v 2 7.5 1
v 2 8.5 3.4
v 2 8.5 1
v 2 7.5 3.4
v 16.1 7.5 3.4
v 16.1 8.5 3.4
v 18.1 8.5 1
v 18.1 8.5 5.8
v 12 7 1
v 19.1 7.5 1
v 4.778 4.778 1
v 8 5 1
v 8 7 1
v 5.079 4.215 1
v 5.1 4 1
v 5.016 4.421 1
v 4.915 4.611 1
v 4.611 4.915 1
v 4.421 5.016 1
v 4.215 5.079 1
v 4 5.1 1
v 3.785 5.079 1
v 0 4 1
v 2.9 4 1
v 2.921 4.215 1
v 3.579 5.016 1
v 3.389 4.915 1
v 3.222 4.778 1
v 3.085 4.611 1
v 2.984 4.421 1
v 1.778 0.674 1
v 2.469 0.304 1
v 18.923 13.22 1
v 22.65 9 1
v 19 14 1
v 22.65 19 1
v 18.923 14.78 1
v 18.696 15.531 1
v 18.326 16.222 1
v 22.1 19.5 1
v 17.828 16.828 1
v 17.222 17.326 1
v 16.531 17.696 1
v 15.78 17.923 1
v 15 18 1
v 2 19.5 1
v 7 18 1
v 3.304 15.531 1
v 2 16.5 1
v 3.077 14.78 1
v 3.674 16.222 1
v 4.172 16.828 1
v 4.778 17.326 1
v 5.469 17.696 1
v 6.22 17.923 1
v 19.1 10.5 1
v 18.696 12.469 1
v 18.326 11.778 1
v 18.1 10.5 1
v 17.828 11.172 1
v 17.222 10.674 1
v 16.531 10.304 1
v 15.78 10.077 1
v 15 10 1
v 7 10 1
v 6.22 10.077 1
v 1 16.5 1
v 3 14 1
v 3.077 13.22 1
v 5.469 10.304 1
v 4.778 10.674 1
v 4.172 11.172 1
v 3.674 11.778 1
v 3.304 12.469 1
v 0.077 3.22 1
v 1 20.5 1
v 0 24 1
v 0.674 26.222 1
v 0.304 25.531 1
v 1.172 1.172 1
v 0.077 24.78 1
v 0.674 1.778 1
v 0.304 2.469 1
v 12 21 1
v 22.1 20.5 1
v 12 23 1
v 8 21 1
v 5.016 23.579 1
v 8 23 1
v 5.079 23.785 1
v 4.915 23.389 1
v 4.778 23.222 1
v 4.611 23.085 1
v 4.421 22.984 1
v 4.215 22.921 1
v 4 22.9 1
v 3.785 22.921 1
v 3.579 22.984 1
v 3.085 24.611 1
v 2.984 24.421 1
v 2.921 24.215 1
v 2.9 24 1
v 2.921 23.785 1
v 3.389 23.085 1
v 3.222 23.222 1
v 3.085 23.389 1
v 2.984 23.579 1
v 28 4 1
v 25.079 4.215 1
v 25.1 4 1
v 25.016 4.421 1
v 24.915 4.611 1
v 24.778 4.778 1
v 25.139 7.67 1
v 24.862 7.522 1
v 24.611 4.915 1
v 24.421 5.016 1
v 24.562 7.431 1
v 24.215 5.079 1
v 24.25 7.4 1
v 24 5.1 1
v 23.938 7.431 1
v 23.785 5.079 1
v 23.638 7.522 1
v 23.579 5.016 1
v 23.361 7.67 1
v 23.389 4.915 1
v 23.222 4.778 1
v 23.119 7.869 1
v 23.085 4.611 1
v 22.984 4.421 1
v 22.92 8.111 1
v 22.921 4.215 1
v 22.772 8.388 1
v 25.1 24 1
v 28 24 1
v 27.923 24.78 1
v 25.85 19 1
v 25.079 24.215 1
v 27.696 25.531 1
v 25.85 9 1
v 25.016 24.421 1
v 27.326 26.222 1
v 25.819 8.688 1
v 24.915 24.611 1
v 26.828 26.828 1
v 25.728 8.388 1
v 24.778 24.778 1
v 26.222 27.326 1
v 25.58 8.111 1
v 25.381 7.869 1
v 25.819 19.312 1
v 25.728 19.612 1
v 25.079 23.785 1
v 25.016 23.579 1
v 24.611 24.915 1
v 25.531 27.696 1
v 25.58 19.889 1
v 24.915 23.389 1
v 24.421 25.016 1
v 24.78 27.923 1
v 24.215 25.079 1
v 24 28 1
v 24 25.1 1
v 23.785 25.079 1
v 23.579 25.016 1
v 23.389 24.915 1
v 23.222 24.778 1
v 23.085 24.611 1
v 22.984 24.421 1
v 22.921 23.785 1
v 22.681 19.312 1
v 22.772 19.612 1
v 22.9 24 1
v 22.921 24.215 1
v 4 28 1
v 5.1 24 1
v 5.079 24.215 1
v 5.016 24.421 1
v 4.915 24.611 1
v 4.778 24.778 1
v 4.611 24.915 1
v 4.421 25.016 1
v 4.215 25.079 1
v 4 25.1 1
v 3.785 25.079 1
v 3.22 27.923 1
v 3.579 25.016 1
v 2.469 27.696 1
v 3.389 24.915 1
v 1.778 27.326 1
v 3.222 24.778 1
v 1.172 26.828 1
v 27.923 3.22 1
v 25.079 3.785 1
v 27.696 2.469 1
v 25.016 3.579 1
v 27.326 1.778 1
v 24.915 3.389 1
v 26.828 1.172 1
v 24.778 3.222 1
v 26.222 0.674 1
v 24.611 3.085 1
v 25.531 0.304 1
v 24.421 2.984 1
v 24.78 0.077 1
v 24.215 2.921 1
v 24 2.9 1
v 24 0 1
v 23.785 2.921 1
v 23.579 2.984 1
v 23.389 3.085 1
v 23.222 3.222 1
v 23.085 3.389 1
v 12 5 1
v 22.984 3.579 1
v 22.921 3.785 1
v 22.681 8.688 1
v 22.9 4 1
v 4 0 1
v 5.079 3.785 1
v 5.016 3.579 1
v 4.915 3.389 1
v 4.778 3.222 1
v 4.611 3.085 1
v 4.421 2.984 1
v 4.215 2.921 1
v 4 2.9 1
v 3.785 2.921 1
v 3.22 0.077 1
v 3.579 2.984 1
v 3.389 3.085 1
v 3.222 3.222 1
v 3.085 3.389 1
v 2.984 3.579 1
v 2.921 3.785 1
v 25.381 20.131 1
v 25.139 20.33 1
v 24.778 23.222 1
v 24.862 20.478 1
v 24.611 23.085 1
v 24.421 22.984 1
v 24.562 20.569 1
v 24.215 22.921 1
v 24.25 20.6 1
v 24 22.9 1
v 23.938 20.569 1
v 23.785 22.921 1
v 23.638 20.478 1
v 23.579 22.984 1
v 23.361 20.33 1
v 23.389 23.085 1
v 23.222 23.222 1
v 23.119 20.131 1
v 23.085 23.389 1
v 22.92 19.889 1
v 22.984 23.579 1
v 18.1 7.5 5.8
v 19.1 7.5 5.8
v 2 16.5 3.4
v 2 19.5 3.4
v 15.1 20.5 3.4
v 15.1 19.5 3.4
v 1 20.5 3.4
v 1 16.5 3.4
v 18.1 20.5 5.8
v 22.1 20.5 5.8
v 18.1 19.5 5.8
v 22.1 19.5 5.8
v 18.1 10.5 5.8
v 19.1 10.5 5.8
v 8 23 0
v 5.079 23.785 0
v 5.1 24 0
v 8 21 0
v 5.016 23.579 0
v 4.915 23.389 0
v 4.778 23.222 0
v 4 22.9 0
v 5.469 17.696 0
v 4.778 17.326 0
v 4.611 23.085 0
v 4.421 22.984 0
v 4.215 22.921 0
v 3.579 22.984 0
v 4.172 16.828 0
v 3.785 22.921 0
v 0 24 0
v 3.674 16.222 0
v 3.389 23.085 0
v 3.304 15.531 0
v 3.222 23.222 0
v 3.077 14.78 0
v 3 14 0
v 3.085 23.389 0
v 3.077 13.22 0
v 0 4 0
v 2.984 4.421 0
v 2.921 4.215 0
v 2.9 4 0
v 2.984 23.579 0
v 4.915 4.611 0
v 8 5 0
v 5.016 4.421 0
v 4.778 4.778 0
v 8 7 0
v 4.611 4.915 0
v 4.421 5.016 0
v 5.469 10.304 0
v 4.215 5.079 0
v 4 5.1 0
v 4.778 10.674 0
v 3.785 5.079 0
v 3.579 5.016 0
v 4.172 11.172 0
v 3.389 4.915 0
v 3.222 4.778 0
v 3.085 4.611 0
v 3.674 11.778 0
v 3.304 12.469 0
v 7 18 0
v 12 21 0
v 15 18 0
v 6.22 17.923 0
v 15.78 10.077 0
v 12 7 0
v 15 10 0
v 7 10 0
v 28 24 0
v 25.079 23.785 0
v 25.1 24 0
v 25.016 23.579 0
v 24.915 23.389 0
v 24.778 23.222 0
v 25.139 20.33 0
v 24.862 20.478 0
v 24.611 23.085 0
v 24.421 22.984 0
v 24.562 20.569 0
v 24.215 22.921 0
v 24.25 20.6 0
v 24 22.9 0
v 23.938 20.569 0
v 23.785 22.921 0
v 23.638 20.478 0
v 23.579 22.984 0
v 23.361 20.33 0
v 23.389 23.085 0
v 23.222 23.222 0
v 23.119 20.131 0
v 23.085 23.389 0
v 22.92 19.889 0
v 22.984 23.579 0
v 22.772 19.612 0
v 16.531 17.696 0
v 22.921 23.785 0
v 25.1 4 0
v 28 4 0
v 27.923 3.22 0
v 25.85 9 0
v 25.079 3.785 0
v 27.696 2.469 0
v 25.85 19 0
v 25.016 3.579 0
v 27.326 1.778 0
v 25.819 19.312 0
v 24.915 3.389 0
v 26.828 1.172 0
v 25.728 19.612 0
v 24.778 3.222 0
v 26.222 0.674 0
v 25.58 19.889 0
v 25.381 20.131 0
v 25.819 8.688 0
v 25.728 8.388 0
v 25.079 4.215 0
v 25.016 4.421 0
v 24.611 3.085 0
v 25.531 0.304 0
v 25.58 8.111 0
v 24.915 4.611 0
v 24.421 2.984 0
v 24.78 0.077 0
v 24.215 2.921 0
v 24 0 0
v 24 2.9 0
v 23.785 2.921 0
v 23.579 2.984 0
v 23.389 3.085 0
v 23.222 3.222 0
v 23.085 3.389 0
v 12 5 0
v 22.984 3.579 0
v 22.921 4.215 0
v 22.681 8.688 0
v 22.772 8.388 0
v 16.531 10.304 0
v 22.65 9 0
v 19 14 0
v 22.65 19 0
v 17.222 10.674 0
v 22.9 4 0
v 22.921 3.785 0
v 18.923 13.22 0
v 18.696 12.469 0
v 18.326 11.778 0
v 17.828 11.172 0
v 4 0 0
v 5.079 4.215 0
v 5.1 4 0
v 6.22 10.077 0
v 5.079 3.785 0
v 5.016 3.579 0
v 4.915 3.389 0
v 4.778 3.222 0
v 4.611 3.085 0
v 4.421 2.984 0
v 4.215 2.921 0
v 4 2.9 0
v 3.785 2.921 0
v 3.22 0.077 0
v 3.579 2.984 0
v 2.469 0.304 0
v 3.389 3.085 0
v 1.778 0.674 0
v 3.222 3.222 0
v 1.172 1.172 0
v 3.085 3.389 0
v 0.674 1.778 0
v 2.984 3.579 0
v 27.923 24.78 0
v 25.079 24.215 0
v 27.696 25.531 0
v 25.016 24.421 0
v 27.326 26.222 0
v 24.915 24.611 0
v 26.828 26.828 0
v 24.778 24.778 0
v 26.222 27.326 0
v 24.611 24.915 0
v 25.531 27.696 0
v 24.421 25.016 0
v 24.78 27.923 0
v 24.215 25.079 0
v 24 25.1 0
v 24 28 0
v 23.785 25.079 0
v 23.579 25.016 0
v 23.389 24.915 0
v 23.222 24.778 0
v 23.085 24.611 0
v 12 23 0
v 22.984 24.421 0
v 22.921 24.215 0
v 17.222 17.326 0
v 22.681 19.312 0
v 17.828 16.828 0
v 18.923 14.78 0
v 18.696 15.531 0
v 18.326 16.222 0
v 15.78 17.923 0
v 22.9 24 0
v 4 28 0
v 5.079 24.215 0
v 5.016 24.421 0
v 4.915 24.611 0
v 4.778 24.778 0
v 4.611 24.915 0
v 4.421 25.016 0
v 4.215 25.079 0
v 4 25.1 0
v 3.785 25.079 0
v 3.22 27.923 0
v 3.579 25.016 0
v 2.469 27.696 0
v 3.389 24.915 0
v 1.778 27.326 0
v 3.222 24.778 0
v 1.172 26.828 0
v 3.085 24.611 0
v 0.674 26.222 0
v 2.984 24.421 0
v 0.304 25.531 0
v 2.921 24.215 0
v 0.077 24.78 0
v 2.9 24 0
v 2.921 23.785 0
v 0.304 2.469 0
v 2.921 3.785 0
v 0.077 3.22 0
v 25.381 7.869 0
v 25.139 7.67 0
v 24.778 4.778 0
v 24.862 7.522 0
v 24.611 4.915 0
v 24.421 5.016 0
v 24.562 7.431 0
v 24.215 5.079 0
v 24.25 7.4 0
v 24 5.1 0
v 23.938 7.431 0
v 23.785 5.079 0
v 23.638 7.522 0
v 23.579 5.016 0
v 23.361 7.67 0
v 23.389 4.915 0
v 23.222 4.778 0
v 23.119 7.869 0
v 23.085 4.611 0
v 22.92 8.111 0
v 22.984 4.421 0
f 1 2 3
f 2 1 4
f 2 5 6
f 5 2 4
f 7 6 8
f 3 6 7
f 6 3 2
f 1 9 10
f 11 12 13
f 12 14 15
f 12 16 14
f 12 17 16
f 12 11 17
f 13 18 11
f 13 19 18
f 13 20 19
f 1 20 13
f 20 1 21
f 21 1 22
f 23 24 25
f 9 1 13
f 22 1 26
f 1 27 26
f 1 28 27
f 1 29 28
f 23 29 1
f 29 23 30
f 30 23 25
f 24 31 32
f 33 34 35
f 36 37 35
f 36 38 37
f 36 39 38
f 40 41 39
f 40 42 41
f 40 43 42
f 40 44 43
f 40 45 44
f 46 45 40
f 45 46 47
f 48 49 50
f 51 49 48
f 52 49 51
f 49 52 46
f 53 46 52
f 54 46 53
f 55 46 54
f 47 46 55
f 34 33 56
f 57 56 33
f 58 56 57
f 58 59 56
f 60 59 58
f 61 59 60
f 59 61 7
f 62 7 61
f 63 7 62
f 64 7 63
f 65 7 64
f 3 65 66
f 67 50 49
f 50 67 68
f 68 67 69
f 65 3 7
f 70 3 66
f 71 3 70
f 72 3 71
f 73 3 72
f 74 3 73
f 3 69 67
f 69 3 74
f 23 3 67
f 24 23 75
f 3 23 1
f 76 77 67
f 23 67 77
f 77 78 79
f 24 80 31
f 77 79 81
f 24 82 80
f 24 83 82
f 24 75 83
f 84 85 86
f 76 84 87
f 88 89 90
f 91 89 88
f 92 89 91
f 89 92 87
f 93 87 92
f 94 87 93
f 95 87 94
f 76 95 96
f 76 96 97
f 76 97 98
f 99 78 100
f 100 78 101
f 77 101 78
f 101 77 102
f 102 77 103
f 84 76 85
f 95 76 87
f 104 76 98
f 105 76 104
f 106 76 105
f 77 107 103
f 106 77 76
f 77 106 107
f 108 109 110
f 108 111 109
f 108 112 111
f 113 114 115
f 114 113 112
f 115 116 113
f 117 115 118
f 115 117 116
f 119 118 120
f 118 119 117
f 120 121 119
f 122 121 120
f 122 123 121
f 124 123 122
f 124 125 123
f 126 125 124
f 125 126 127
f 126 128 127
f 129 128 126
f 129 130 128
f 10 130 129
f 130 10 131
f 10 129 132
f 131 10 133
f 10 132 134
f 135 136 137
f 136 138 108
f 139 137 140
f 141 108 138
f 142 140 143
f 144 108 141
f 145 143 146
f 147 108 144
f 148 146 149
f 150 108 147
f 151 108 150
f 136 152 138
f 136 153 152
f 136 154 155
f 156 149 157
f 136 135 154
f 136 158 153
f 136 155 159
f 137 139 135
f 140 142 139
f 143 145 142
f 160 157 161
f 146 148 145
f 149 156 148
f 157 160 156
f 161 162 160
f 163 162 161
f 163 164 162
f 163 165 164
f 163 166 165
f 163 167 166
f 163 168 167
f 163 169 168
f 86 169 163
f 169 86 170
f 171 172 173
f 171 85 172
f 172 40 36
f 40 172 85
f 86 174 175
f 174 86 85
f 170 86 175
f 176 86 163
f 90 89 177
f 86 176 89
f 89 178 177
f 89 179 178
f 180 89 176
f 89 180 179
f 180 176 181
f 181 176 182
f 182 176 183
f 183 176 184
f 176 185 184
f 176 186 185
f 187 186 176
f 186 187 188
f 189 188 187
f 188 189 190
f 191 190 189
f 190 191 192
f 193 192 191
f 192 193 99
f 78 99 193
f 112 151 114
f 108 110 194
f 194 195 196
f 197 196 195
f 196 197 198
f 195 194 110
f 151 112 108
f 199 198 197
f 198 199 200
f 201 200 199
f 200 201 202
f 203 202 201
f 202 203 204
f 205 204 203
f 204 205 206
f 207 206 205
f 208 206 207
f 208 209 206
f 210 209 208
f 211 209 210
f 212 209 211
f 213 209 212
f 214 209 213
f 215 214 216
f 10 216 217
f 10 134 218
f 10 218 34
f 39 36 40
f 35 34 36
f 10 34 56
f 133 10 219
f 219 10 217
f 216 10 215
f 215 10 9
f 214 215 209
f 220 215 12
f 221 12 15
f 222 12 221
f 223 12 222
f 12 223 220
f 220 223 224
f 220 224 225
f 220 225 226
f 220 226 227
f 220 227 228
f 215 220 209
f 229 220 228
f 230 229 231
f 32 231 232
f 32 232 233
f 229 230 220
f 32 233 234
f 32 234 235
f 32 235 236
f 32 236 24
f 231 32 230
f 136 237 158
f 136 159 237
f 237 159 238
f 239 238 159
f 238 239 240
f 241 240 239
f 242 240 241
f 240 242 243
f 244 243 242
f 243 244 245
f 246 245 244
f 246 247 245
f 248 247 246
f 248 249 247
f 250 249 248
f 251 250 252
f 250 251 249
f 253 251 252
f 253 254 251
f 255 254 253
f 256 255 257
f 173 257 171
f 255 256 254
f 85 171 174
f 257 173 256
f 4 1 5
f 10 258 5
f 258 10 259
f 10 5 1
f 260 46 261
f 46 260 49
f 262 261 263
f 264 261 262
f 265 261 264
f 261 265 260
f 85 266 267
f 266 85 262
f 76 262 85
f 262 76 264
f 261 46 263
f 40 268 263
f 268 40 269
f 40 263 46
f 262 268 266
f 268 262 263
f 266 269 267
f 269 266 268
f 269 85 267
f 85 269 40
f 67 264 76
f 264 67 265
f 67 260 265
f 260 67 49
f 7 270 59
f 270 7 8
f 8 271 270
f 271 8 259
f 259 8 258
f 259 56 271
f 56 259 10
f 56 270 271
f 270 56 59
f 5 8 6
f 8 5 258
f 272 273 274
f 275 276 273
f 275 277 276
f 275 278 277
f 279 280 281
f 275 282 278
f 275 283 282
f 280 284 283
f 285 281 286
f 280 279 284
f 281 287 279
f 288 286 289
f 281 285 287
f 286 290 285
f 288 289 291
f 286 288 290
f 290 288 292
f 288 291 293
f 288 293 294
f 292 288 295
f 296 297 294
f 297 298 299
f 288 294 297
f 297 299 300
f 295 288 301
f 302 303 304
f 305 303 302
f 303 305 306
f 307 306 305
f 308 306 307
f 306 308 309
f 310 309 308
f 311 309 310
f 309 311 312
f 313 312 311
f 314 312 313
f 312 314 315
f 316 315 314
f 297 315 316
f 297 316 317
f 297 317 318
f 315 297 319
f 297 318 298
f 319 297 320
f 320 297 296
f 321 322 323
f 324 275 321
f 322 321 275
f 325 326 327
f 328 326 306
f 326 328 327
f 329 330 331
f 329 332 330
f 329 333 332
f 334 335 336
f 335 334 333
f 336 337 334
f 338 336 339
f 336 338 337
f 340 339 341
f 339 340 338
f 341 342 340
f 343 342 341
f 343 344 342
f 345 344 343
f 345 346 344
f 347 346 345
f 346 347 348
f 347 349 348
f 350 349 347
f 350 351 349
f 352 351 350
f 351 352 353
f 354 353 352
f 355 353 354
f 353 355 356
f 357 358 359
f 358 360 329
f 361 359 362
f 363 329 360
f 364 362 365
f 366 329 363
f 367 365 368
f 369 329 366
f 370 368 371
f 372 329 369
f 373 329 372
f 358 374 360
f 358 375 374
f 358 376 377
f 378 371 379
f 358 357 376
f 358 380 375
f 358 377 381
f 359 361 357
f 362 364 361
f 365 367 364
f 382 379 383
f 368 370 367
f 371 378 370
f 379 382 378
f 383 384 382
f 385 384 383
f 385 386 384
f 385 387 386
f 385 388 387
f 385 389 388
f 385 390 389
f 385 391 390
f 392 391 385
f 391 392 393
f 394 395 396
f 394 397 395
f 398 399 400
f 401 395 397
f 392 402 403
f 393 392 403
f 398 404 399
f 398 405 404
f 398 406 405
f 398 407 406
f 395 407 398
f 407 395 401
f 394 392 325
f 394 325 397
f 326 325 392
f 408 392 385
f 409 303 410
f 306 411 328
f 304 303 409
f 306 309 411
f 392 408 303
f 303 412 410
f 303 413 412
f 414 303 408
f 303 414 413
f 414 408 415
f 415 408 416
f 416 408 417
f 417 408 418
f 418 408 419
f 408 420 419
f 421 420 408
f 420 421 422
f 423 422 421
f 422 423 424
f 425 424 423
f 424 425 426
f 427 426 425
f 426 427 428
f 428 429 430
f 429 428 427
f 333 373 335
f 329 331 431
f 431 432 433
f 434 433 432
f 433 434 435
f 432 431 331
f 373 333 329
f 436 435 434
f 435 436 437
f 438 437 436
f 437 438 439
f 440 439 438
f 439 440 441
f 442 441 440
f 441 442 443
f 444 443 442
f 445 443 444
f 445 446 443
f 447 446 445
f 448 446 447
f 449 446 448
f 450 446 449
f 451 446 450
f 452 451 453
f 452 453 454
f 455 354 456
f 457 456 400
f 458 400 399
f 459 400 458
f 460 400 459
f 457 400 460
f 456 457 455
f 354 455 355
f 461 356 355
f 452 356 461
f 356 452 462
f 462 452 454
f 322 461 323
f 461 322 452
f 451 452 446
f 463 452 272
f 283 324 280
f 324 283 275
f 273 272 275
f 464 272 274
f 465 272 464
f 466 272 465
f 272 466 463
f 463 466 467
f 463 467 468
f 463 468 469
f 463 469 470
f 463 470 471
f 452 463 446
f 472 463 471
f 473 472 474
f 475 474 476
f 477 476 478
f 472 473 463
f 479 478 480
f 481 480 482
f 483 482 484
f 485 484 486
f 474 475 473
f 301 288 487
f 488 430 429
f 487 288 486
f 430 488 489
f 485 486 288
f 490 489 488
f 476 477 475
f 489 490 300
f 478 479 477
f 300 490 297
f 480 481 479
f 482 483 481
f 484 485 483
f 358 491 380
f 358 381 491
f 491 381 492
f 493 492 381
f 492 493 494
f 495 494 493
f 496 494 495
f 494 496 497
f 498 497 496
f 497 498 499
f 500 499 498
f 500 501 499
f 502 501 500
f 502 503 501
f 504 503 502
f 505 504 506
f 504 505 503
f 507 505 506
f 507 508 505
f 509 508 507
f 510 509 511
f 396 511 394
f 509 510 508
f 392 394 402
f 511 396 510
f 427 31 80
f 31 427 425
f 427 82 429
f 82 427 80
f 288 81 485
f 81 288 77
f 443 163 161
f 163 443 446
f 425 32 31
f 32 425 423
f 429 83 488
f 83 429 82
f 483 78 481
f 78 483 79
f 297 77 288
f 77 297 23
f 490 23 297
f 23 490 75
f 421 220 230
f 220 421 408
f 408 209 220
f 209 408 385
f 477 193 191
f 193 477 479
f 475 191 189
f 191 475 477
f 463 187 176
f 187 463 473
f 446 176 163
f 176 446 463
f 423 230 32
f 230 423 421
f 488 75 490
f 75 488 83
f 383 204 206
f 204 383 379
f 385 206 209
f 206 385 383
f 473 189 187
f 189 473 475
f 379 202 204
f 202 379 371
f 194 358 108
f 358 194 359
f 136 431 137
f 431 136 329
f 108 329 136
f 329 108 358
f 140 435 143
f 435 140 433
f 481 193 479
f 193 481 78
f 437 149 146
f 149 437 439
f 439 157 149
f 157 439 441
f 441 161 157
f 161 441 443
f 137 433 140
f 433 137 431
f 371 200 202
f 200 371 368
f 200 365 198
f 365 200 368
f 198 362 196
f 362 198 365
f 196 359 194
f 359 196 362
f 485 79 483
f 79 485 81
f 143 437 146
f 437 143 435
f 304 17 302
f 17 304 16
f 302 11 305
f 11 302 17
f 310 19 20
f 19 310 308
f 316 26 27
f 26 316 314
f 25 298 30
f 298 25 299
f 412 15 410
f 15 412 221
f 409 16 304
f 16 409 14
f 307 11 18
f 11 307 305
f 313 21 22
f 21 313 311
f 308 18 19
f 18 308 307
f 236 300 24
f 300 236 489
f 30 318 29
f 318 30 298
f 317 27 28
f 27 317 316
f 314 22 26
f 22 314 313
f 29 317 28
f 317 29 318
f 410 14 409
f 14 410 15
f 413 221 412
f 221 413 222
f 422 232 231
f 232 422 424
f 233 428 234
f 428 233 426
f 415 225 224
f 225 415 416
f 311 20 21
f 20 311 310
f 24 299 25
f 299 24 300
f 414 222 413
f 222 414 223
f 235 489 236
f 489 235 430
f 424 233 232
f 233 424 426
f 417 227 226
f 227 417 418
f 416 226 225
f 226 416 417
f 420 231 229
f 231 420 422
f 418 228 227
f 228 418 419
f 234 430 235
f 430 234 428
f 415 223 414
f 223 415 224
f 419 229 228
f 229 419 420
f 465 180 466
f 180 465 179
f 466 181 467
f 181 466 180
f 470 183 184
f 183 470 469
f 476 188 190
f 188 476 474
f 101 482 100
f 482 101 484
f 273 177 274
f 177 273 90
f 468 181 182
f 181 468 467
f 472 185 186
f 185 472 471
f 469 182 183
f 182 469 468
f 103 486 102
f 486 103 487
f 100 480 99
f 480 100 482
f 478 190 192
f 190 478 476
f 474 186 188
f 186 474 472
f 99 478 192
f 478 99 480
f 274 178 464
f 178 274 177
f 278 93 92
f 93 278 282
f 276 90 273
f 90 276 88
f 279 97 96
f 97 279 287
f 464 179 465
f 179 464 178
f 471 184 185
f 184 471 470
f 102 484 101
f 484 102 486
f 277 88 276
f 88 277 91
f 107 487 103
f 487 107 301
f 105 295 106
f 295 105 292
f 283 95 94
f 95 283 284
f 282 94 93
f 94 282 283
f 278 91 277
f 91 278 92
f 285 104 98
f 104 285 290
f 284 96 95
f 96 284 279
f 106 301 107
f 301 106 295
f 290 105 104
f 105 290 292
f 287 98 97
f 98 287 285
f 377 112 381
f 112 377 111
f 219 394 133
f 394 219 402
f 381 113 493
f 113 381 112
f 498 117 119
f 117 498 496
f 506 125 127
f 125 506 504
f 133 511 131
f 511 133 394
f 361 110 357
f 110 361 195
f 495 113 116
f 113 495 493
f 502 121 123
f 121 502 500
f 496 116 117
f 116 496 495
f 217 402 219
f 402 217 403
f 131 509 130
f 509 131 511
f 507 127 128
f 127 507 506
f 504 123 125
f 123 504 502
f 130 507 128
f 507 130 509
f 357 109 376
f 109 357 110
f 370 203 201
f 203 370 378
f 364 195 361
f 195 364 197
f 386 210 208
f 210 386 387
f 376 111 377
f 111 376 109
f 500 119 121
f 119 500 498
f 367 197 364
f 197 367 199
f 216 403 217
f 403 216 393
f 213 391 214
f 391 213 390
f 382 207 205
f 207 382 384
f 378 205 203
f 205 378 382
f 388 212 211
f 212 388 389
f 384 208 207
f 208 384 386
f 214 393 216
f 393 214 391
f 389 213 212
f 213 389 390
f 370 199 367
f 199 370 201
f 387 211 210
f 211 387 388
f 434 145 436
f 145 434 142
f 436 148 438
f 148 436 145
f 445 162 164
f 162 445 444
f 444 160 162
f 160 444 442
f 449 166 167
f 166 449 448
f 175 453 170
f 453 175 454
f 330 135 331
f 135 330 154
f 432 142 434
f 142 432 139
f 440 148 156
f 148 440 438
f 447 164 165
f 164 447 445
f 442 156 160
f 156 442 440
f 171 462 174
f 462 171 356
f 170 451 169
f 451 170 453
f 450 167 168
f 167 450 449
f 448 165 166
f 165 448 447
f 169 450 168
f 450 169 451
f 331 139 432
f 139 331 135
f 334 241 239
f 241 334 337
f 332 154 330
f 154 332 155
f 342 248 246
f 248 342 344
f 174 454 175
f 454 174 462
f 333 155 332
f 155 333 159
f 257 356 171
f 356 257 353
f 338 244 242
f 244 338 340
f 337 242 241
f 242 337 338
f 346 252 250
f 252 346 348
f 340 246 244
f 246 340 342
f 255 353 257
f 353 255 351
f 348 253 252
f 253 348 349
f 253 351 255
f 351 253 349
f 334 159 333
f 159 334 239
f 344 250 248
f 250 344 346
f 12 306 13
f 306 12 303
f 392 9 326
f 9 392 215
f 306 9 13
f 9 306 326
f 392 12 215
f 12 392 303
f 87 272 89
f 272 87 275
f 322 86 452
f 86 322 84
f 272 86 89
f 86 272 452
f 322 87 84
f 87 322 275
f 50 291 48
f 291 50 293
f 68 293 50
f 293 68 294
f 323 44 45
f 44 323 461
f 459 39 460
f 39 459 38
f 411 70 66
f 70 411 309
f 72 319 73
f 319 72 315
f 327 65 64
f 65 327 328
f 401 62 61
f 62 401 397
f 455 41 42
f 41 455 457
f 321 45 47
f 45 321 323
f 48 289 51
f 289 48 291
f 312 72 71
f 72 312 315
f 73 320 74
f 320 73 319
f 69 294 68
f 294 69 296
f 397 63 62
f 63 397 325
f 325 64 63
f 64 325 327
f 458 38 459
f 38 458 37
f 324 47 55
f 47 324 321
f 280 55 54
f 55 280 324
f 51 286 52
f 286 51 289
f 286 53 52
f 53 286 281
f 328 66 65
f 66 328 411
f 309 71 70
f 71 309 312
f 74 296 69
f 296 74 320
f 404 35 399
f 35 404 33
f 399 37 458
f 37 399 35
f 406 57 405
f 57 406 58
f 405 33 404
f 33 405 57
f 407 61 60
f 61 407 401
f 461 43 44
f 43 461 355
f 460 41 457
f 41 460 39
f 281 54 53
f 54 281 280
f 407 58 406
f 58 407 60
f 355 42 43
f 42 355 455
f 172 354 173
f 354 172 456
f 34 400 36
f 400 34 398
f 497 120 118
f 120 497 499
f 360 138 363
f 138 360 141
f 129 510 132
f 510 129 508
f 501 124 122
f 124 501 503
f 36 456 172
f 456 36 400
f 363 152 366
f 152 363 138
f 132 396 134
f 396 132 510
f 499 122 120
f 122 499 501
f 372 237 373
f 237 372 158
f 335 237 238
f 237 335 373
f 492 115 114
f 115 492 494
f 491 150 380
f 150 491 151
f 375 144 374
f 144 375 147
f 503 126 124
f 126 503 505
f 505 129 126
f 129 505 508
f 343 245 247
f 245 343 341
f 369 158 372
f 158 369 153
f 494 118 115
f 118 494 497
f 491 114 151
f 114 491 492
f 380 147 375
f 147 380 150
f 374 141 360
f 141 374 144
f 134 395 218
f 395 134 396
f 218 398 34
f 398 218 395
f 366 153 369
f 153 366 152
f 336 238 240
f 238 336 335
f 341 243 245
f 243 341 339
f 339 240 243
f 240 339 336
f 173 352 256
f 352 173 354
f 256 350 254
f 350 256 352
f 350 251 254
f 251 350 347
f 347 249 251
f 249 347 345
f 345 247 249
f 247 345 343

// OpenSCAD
// file: rounded_box.scad
/**
 * Small "library" for creating boxes with rounded edges.
 *
 * Hendrik Busch, 2017 (https://github.com/hmbusch)
 *
 */
 
/**
 * Call to create a box with rounded edges (edges will be round on one plane only).
 * Be sure to increase $fn for nicer edges.
 * 
 * @param width
 *          the desired width of the box (default is 10mm)
 * @param depth
 *          the desired depth of the box (default is 10mm)
 * @param height
 *          the desired height of the box (default is 10mm)
 * @param edge_radius
 *          the radius of all the edges on the xy-plane (default is 2mm)
 *
 */
module box_with_round_edges(width = 10, depth = 10, height = 10, edge_radius = 2) {
    translate([edge_radius, edge_radius, 0]) hull() {
        ed = edge_radius * 2;
        cylinder(d = ed, h = height);
        translate([width - ed, 0, 0]) cylinder(d = edge_radius * 2, h = height);
        translate([0, depth - ed, 0]) cylinder(d = edge_radius * 2, h = height);
        translate([width - ed, depth -ed, 0]) cylinder(d = edge_radius * 2, h = height);
    }
}
// main file
/**
 * FrSky R-XSR 20x20mm stack mount
 *
 * by Hendrik Busch, 2018 (https://github.com/hmbusch)
 *
 * I needed to stack a R-XSR receiver onto a 20x20mm stack and
 * designed this plate for this purpose. The RX is held in place
 * by a ziptie and you can feed the cable from underneath through
 * the slot.
 */
use <rounded_box.scad>

$fn = 32;

x = 0;
y = 1;
z = 2;

dim_plate = [28, 28, 1];
dim_rx = [16.1, 11];
dim_ziptie = [4, 2];

hole_spacing = 20;
hole_offset_1 = (dim_plate[y] - hole_spacing) / 2;
hole_offset_2 = dim_plate[y] - hole_offset_1;
hole_diameter = 2.2;
bevel_height = 2.4;
bevel_width = 1;

difference() {
    union() {
         color("LightSlateGray")
         box_with_round_edges(width = dim_plate[x], depth = dim_plate[y], height = dim_plate[z], edge_radius = 4); 
        
        // bevels 
        color("Cornsilk") {
            bevel_offset_1 = ((dim_plate[y] - dim_rx[y])/2) - bevel_width;
            bevel_offset_2 = dim_plate[y] - bevel_offset_1 - bevel_width;
            translate([2, bevel_offset_1, dim_plate[z]]) cube([dim_rx[x], bevel_width, bevel_height]);
            translate([2, bevel_offset_2, dim_plate[z]]) cube([dim_rx[x], bevel_width, bevel_height]);
            hull() {
                translate([dim_rx[x] - 1, bevel_offset_2, dim_plate[z]]) cube([2, bevel_width, bevel_height]);
                translate([dim_rx[x] + 2, bevel_offset_2, dim_plate[z]]) cube([4, bevel_width, 2 * bevel_height]);
            }
            translate([2 - bevel_width, bevel_offset_2 + bevel_width - 4, 1]) cube([bevel_width, 4, bevel_height]);
            translate([dim_rx[x] + 2, bevel_offset_1, dim_plate[z]]) cube([bevel_width, 3, 2 * bevel_height]);
            hull() {
                translate([dim_rx[x] + 2, bevel_offset_1, dim_plate[z]]) cube([bevel_width, bevel_width, 2 * bevel_height]);
                translate([dim_rx[x], bevel_offset_1, dim_plate[z]]) cube([bevel_width, bevel_width, bevel_height]);
            }        
        }
    }
    
    color("LightSlateGray") {
        // mounting holes 20.5x20.5mm
        translate([hole_offset_1, hole_offset_1, -0.1]) cylinder(d = hole_diameter, h = dim_plate[z] + 0.2);
        translate([hole_offset_1, hole_offset_2, -0.1]) cylinder(d = hole_diameter, h = dim_plate[z] + 0.2);
        translate([hole_offset_2, hole_offset_1, -0.1]) cylinder(d = hole_diameter, h = dim_plate[z] + 0.2);
        translate([hole_offset_2, hole_offset_2, -0.1]) cylinder(d = hole_diameter, h = dim_plate[z] + 0.2);

        // zip-tie holes
        translate([8, 5, -0.1]) cube([dim_ziptie[x], dim_ziptie[y], dim_plate[z] + 0.2]);
        translate([8, 21, -0.1]) cube([dim_ziptie[x], dim_ziptie[y], dim_plate[z] + 0.2]);

        // weight reduction
        hull() {
            translate([7, 14, -0.1]) cylinder(d = 8, h = dim_plate[z] + 0.2);
            translate([15, 14, -0.1]) cylinder(d = 8, h = dim_plate[z] + 0.2);
        }
        hull() {
            translate([24.25, 9, -0.1]) cylinder(d = 3.2, h = dim_plate[z] + 0.2);
            translate([24.25, 19, -0.1]) cylinder(d = 3.2, h = dim_plate[z] + 0.2);
        }
    }       
}
